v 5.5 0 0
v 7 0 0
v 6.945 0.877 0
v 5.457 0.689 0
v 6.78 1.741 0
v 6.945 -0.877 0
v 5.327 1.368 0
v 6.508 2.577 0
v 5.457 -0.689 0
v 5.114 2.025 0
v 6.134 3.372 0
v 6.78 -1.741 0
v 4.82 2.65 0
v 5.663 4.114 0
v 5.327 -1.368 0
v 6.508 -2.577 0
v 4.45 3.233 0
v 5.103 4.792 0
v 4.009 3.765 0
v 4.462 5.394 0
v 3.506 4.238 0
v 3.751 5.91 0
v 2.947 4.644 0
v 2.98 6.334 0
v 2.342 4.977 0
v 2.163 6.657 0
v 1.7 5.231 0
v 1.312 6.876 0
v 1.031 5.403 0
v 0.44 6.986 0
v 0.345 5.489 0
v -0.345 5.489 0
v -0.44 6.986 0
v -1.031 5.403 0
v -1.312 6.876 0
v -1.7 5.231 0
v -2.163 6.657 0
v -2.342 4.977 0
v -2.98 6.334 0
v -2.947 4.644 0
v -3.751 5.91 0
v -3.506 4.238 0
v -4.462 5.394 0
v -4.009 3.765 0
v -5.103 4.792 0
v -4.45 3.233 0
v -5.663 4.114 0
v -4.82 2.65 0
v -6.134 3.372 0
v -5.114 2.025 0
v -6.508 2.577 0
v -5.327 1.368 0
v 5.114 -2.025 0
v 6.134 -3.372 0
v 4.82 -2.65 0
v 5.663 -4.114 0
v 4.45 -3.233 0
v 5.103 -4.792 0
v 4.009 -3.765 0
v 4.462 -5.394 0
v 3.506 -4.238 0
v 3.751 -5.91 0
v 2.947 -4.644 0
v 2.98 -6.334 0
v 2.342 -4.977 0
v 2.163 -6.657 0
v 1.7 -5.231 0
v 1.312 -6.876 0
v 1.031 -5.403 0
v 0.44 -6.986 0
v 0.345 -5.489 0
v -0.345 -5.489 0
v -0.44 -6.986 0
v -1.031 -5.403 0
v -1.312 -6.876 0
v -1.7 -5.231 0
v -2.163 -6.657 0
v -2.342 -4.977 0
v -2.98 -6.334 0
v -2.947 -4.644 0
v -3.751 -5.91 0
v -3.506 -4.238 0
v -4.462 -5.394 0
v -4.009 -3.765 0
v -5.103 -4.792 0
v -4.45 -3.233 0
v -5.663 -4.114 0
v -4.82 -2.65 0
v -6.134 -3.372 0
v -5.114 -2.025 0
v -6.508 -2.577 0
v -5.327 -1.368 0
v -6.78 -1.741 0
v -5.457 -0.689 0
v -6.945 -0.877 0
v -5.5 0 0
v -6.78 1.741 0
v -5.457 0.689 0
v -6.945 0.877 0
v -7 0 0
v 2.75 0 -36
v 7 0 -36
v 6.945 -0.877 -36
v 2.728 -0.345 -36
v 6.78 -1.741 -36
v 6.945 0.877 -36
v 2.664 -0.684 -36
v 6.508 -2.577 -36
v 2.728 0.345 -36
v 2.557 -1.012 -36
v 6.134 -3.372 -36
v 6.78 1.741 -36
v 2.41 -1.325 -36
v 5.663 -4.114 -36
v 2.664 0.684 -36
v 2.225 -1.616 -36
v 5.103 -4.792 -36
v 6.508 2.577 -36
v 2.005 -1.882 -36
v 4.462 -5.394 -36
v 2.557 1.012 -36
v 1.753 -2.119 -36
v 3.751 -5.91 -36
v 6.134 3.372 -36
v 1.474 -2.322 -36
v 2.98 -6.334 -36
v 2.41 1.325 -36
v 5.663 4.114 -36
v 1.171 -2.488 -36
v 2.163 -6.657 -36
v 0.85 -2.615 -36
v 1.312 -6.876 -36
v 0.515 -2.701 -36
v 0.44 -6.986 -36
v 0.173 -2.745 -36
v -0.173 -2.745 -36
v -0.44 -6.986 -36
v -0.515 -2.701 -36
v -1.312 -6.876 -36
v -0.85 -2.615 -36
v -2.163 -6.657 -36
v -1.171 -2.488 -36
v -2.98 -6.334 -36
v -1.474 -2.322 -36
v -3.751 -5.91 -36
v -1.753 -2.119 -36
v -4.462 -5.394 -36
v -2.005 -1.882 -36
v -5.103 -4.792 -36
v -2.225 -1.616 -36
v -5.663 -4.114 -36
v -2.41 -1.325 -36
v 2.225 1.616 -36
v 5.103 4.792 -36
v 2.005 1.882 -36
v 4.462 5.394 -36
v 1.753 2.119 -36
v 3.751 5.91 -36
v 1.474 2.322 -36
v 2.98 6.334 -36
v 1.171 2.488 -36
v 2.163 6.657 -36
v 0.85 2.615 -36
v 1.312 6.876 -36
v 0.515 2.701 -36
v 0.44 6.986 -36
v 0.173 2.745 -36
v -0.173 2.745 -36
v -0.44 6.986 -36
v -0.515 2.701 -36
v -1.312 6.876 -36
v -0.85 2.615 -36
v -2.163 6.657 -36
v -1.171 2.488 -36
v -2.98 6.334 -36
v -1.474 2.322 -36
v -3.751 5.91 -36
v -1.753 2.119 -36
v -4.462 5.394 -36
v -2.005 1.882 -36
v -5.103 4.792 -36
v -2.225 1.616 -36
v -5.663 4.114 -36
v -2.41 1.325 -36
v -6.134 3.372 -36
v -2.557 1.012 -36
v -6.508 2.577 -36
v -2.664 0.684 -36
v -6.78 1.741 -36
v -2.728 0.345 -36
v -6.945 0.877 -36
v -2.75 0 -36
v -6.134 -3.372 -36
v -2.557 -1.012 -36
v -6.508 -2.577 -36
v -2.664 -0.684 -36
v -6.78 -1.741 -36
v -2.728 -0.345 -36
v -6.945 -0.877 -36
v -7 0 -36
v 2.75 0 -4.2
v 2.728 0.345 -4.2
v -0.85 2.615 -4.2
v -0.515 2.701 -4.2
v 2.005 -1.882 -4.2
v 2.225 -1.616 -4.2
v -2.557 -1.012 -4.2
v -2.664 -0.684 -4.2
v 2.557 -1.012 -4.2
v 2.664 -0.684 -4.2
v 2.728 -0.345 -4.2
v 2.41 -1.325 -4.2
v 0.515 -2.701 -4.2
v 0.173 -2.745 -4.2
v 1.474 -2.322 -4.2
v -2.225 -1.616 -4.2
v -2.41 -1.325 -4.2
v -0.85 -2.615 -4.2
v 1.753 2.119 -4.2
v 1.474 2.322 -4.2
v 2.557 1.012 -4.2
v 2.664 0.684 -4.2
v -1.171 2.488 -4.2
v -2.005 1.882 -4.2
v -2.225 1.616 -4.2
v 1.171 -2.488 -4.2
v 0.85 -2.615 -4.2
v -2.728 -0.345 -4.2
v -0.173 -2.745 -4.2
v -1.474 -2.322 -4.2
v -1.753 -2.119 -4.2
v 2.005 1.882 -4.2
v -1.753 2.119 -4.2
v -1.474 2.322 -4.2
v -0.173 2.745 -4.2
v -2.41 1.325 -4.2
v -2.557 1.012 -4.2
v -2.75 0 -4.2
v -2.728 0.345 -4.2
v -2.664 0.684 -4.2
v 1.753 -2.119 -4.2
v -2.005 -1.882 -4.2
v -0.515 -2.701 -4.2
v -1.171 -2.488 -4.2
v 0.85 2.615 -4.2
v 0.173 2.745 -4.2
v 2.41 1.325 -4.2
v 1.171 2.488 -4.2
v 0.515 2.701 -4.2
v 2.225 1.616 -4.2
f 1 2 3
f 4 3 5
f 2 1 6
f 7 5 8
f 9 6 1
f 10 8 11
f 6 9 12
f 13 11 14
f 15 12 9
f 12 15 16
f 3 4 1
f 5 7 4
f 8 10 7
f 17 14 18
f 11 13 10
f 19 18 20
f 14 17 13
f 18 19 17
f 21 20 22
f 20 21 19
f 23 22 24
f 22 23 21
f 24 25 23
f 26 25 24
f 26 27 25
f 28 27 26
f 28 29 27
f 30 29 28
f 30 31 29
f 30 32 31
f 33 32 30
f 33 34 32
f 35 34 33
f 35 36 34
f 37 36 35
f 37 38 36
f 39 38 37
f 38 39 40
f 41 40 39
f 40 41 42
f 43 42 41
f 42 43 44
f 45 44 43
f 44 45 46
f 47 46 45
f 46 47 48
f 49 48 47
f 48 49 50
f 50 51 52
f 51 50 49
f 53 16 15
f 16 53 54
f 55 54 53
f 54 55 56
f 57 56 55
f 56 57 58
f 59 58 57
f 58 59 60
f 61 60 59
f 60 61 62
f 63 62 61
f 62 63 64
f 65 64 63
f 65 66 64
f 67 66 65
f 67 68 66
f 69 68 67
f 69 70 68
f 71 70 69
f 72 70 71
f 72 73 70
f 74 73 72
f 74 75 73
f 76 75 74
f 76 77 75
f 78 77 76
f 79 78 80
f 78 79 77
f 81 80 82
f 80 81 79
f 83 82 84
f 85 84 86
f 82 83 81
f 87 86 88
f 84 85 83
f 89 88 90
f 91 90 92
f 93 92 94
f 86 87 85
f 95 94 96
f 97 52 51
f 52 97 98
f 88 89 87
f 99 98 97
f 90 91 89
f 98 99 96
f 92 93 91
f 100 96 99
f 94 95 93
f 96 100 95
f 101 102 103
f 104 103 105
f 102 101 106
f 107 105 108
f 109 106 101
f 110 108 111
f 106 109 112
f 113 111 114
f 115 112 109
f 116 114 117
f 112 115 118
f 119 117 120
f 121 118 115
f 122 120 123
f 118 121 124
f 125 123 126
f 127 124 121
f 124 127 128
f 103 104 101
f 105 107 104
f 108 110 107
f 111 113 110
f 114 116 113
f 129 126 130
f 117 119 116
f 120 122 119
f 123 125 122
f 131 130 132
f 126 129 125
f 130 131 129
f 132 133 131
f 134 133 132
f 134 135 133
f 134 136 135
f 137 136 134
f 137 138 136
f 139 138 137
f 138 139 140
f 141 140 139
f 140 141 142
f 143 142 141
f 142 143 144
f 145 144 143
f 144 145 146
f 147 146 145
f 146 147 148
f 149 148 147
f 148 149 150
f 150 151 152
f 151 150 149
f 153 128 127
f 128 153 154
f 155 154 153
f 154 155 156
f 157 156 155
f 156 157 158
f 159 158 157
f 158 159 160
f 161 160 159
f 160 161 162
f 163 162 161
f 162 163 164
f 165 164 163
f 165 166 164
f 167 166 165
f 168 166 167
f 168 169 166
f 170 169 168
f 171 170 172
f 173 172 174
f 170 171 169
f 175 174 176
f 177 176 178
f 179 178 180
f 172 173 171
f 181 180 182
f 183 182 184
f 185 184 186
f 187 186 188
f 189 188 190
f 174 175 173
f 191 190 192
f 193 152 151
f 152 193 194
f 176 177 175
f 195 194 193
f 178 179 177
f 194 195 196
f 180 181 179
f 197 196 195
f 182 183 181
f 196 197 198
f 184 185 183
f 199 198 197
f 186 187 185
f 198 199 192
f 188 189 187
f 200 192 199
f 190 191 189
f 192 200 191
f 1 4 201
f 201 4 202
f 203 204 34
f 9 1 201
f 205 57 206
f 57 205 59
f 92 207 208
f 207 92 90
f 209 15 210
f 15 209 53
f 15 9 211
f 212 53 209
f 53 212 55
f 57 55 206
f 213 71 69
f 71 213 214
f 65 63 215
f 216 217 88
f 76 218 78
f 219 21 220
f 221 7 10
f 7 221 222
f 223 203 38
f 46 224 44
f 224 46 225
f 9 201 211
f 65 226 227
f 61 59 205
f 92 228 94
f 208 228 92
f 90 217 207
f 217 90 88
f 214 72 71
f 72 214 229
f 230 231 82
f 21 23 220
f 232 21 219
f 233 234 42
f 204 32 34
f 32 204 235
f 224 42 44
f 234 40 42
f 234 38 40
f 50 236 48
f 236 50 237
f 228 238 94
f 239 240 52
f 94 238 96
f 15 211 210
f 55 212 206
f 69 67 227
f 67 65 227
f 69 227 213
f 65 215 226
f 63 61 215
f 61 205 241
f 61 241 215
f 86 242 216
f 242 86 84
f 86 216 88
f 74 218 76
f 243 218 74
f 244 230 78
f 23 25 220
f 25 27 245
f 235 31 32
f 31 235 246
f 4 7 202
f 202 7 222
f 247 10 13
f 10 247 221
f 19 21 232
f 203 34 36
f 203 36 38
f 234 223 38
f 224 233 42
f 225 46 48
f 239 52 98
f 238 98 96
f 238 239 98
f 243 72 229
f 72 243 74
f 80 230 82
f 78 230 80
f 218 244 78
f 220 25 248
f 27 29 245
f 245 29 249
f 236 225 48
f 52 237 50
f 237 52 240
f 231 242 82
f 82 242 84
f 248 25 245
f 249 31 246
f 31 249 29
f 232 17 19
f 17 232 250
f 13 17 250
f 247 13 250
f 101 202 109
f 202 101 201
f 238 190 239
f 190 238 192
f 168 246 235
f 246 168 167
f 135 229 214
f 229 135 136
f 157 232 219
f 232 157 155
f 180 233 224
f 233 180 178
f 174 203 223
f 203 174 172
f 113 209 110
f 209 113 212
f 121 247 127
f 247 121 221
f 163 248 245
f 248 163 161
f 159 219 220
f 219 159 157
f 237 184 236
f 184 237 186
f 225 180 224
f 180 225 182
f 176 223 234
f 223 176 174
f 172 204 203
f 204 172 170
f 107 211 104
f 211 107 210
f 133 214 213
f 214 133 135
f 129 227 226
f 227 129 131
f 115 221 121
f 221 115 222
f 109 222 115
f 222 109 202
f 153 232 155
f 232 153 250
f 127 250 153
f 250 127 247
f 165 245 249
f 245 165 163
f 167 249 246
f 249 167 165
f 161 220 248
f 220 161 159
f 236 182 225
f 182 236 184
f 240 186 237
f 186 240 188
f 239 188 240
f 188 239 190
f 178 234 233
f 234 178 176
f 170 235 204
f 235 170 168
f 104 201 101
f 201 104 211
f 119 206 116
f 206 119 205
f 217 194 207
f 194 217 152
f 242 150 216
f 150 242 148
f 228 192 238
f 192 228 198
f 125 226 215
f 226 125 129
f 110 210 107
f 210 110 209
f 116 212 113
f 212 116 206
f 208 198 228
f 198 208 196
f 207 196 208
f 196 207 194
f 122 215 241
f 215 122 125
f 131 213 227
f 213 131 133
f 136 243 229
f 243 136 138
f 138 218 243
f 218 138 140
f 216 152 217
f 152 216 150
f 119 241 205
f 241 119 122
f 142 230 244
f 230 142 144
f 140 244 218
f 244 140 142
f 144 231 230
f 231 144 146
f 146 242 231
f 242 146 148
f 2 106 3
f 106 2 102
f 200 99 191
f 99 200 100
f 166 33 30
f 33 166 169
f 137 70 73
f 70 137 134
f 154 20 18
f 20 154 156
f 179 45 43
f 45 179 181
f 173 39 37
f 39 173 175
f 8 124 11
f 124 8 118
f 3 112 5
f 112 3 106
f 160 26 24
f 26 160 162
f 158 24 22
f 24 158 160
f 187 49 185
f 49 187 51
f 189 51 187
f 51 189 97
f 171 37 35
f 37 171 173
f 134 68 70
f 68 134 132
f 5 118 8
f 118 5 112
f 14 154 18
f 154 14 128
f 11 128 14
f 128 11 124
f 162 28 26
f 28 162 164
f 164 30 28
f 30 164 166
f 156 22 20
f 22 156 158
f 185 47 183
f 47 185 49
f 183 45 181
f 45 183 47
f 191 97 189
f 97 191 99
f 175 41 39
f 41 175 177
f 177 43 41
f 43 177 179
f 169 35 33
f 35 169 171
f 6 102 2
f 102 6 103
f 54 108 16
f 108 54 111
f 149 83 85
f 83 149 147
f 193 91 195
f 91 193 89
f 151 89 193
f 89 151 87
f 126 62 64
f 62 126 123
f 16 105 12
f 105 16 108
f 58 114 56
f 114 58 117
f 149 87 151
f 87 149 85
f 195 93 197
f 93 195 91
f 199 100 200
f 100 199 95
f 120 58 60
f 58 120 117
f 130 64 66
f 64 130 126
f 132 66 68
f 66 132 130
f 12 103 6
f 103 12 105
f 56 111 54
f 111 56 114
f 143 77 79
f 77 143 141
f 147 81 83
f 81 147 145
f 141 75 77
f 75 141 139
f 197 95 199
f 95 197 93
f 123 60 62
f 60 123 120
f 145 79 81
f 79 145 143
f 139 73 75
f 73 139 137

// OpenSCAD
$fn = 50;


difference() {
	union() {
		translate(v = [0, 0, -36.0000000000]) {
			cylinder(h = 36, r = 7.0000000000);
		}
		cylinder(h = 0, r = 17.0000000000);
	}
	union() {
		translate(v = [0, 0, 0]) {
			rotate(a = [0, 0, 0]) {
				difference() {
					union() {
						#translate(v = [0, 0, -36.0000000000]) {
							cylinder(h = 36, r = 2.2500000000);
						}
						#translate(v = [0, 0, -4.2000000000]) {
							cylinder(h = 4.2000000000, r = 7.0000000000, r1 = 2.7500000000, r2 = 5.5000000000);
						}
						#translate(v = [0, 0, -36.0000000000]) {
							cylinder(h = 36, r = 2.7500000000);
						}
						#translate(v = [0, 0, -36.0000000000]) {
							cylinder(h = 36, r = 2.2500000000);
						}
					}
					union();
				}
			}
		}
	}
}
